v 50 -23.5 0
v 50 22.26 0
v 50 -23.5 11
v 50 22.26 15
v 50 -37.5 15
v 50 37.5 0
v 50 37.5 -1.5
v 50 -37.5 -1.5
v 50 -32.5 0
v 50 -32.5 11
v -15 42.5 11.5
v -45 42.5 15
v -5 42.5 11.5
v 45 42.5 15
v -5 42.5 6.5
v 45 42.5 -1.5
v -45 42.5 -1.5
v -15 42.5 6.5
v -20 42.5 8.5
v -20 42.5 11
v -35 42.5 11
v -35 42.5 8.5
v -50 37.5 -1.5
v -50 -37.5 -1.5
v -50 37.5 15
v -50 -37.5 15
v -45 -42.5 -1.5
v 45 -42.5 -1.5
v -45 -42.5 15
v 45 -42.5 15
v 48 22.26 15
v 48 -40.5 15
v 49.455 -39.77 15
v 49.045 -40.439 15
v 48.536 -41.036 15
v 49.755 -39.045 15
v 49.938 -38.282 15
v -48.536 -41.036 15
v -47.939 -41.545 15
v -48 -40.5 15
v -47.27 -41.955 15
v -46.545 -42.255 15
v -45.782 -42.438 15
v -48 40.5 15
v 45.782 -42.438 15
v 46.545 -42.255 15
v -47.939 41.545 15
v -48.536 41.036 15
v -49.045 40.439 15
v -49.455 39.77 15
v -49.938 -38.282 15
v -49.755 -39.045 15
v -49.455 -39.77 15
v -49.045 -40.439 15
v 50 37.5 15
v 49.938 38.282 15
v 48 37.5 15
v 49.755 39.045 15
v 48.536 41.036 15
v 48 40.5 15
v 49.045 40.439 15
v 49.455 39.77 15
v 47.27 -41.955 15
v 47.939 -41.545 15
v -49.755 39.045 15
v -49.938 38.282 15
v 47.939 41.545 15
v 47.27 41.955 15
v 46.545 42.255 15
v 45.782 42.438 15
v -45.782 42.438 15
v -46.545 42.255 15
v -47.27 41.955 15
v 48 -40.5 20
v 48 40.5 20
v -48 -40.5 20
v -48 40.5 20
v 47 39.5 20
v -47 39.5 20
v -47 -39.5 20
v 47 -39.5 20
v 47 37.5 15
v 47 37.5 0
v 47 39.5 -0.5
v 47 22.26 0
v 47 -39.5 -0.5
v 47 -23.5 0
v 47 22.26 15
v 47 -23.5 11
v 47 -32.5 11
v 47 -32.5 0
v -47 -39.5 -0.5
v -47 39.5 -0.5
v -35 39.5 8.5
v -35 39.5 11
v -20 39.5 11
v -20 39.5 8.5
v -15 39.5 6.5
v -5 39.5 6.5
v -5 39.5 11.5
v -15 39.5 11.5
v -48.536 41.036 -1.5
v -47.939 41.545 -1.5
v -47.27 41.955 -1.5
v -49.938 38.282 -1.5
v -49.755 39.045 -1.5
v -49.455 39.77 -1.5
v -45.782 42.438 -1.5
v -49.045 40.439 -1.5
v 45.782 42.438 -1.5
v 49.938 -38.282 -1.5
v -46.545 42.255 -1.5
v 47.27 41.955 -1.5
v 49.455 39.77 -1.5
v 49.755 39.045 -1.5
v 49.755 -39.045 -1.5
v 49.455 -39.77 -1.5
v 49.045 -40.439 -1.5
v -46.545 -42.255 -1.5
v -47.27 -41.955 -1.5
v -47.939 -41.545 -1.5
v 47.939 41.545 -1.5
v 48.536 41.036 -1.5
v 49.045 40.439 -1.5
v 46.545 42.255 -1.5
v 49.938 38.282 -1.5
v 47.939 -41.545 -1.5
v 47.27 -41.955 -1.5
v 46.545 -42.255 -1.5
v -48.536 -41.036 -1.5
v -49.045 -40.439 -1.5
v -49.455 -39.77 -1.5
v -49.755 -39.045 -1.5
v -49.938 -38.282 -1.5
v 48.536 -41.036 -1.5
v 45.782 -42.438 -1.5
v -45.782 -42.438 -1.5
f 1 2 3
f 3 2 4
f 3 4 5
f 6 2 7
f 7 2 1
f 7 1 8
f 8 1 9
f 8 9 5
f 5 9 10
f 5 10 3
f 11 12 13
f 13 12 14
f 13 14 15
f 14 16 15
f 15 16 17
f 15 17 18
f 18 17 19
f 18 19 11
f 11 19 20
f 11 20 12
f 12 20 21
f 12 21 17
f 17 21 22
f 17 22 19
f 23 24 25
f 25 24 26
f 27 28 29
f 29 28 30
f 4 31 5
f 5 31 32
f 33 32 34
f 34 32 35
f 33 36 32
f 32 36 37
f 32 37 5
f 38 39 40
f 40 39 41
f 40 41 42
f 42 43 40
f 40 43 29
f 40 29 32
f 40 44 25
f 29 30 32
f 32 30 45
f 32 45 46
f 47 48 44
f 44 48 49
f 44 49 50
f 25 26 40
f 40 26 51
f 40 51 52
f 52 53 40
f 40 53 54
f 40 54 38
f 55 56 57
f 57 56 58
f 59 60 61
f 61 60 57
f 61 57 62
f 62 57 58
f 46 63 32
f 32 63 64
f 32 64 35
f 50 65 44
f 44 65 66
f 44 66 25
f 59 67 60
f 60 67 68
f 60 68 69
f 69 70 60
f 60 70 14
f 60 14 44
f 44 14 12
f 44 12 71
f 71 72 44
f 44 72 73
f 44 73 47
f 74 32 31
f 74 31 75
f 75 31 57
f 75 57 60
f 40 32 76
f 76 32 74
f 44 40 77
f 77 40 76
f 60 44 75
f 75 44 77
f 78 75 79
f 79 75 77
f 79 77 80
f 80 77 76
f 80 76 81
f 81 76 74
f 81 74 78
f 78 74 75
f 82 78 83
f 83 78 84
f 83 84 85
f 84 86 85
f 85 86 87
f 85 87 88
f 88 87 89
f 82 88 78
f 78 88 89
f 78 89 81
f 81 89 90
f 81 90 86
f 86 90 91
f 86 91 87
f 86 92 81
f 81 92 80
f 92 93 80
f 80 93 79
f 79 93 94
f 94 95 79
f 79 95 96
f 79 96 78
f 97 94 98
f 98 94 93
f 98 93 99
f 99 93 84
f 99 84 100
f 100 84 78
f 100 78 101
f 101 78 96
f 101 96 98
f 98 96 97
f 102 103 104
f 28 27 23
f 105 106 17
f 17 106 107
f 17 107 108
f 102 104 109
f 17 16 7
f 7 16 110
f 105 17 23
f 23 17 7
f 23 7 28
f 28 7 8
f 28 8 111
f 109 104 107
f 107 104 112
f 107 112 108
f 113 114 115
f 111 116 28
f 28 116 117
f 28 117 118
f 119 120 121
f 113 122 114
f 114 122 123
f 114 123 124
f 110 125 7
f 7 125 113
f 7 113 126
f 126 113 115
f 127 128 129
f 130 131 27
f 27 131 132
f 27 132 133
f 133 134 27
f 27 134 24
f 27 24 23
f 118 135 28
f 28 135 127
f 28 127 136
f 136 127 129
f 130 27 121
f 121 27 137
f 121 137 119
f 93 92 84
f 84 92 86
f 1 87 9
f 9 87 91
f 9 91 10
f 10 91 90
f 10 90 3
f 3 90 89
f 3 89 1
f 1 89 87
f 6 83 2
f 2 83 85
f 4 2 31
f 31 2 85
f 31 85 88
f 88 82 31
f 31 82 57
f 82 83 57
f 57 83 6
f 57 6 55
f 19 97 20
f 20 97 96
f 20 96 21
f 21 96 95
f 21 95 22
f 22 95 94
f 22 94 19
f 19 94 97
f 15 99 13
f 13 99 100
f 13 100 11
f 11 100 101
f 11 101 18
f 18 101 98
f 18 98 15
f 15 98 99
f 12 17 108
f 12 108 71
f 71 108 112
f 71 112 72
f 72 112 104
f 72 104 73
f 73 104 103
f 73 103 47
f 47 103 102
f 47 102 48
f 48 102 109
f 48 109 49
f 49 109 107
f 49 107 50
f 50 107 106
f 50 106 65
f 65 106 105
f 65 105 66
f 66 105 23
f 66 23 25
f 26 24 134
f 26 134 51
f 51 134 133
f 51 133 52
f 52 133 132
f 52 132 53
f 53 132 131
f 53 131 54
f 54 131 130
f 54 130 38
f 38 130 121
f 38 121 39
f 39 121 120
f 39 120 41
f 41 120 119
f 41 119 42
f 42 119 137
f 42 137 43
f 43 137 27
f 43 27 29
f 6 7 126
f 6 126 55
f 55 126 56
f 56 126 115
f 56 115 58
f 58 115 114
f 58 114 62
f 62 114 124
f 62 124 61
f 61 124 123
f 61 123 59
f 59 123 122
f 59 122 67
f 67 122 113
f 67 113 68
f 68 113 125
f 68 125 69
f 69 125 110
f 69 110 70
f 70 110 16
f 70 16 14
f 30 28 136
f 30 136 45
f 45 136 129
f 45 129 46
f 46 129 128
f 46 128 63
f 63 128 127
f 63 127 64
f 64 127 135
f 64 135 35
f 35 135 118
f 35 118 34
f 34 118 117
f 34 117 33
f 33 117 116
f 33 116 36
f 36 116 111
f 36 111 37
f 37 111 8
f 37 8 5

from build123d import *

# Parameters (mm, degrees)
SKETCH1_W           = 100
SKETCH1_H           = 85
BOSS_EXTRUDE2_DEPTH = 20
SKETCH3_W           = 100
SKETCH3_H           = 85
SKETCH3_W_2         = 96
SKETCH3_H_2         = 81
CUT_EXTRUDE1_DEPTH  = 5
SKETCH4_W           = 94
SKETCH4_H           = 79
CUT_EXTRUDE2_DEPTH  = 19
SKETCH9_W           = 100
SKETCH9_H           = 85
BOSS_EXTRUDE3_DEPTH = 1.5
SKETCH10_W          = 94
SKETCH10_H          = 79
CUT_EXTRUDE5_DEPTH  = 1.5
SKETCH11_W          = 11
SKETCH11_H          = 9
CUT_EXTRUDE7_DEPTH  = 50
SKETCH12_W          = 15
SKETCH12_H          = 15.24
CUT_EXTRUDE8_DEPTH  = 50
SKETCH13_W          = 15
SKETCH13_H          = 2.5
CUT_EXTRUDE9_DEPTH  = 50
SKETCH14_W          = 10
SKETCH14_H          = 5
CUT_EXTRUDE10_DEPTH = 50
FILLET1_R           = 5


with BuildPart() as part:
    # Sketch1 → Boss-Extrude2 (new body)
    with BuildSketch(Plane.XY):
        Rectangle(SKETCH1_W, SKETCH1_H)
    extrude(amount=BOSS_EXTRUDE2_DEPTH)

    # Sketch3 → Cut-Extrude1 (cut)
    with BuildSketch(Plane.XY.offset(20)):
        Rectangle(SKETCH3_W, SKETCH3_H)
        Rectangle(SKETCH3_W_2, SKETCH3_H_2, mode=Mode.SUBTRACT)
    extrude(amount=-CUT_EXTRUDE1_DEPTH, mode=Mode.SUBTRACT)

    # Sketch4 → Cut-Extrude2 (cut)
    with BuildSketch(Plane.XY.offset(20)):
        Rectangle(SKETCH4_W, SKETCH4_H)
    extrude(amount=-CUT_EXTRUDE2_DEPTH, mode=Mode.SUBTRACT)

    # Sketch9 → Boss-Extrude3 (add)
    with BuildSketch(Plane(origin=(0, 0, 0), x_dir=(-1, 0, 0), z_dir=(0, 0, -1))):
        Rectangle(SKETCH9_W, SKETCH9_H)
    extrude(amount=BOSS_EXTRUDE3_DEPTH)

    # Sketch10 → Cut-Extrude5 (cut)
    with BuildSketch(Plane.XY.offset(1)):
        Rectangle(SKETCH10_W, SKETCH10_H)
    extrude(amount=-CUT_EXTRUDE5_DEPTH, mode=Mode.SUBTRACT)

    # Sketch11 → Cut-Extrude7 (cut)
    with BuildSketch(Plane(origin=(50, 0, 0), x_dir=(0, 0, -1), z_dir=(1, 0, 0))):
        with Locations((-5.5, -28)):
            Rectangle(SKETCH11_W, SKETCH11_H)
    extrude(amount=-CUT_EXTRUDE7_DEPTH, mode=Mode.SUBTRACT)

    # Sketch12 → Cut-Extrude8 (cut)
    with BuildSketch(Plane(origin=(50, 0, 0), x_dir=(0, 0, -1), z_dir=(1, 0, 0))):
        with Locations((-7.5, 29.88)):
            Rectangle(SKETCH12_W, SKETCH12_H)
    extrude(amount=-CUT_EXTRUDE8_DEPTH, mode=Mode.SUBTRACT)

    # Sketch13 → Cut-Extrude9 (cut)
    with BuildSketch(Plane(origin=(0, 42.5, 0), x_dir=(1, 0, 0), z_dir=(0, 1, 0))):
        with Locations((-27.5, -9.75)):
            Rectangle(SKETCH13_W, SKETCH13_H)
    extrude(amount=-CUT_EXTRUDE9_DEPTH, mode=Mode.SUBTRACT)

    # Sketch14 → Cut-Extrude10 (cut)
    with BuildSketch(Plane(origin=(0, 42.5, 0), x_dir=(1, 0, 0), z_dir=(0, 1, 0))):
        with Locations((-10, -9)):
            Rectangle(SKETCH14_W, SKETCH14_H)
    extrude(amount=-CUT_EXTRUDE10_DEPTH, mode=Mode.SUBTRACT)

    # Fillet1
    fillet1_edges = [part.edges().sort_by_distance(p)[0] for p in [
        (50, -42.5, 6.75),
        (-50, -42.5, 6.75),
        (-50, 42.5, 6.75),
        (50, 42.5, 6.75),
    ]]
    fillet(fillet1_edges, radius=FILLET1_R)


solid = part.part
